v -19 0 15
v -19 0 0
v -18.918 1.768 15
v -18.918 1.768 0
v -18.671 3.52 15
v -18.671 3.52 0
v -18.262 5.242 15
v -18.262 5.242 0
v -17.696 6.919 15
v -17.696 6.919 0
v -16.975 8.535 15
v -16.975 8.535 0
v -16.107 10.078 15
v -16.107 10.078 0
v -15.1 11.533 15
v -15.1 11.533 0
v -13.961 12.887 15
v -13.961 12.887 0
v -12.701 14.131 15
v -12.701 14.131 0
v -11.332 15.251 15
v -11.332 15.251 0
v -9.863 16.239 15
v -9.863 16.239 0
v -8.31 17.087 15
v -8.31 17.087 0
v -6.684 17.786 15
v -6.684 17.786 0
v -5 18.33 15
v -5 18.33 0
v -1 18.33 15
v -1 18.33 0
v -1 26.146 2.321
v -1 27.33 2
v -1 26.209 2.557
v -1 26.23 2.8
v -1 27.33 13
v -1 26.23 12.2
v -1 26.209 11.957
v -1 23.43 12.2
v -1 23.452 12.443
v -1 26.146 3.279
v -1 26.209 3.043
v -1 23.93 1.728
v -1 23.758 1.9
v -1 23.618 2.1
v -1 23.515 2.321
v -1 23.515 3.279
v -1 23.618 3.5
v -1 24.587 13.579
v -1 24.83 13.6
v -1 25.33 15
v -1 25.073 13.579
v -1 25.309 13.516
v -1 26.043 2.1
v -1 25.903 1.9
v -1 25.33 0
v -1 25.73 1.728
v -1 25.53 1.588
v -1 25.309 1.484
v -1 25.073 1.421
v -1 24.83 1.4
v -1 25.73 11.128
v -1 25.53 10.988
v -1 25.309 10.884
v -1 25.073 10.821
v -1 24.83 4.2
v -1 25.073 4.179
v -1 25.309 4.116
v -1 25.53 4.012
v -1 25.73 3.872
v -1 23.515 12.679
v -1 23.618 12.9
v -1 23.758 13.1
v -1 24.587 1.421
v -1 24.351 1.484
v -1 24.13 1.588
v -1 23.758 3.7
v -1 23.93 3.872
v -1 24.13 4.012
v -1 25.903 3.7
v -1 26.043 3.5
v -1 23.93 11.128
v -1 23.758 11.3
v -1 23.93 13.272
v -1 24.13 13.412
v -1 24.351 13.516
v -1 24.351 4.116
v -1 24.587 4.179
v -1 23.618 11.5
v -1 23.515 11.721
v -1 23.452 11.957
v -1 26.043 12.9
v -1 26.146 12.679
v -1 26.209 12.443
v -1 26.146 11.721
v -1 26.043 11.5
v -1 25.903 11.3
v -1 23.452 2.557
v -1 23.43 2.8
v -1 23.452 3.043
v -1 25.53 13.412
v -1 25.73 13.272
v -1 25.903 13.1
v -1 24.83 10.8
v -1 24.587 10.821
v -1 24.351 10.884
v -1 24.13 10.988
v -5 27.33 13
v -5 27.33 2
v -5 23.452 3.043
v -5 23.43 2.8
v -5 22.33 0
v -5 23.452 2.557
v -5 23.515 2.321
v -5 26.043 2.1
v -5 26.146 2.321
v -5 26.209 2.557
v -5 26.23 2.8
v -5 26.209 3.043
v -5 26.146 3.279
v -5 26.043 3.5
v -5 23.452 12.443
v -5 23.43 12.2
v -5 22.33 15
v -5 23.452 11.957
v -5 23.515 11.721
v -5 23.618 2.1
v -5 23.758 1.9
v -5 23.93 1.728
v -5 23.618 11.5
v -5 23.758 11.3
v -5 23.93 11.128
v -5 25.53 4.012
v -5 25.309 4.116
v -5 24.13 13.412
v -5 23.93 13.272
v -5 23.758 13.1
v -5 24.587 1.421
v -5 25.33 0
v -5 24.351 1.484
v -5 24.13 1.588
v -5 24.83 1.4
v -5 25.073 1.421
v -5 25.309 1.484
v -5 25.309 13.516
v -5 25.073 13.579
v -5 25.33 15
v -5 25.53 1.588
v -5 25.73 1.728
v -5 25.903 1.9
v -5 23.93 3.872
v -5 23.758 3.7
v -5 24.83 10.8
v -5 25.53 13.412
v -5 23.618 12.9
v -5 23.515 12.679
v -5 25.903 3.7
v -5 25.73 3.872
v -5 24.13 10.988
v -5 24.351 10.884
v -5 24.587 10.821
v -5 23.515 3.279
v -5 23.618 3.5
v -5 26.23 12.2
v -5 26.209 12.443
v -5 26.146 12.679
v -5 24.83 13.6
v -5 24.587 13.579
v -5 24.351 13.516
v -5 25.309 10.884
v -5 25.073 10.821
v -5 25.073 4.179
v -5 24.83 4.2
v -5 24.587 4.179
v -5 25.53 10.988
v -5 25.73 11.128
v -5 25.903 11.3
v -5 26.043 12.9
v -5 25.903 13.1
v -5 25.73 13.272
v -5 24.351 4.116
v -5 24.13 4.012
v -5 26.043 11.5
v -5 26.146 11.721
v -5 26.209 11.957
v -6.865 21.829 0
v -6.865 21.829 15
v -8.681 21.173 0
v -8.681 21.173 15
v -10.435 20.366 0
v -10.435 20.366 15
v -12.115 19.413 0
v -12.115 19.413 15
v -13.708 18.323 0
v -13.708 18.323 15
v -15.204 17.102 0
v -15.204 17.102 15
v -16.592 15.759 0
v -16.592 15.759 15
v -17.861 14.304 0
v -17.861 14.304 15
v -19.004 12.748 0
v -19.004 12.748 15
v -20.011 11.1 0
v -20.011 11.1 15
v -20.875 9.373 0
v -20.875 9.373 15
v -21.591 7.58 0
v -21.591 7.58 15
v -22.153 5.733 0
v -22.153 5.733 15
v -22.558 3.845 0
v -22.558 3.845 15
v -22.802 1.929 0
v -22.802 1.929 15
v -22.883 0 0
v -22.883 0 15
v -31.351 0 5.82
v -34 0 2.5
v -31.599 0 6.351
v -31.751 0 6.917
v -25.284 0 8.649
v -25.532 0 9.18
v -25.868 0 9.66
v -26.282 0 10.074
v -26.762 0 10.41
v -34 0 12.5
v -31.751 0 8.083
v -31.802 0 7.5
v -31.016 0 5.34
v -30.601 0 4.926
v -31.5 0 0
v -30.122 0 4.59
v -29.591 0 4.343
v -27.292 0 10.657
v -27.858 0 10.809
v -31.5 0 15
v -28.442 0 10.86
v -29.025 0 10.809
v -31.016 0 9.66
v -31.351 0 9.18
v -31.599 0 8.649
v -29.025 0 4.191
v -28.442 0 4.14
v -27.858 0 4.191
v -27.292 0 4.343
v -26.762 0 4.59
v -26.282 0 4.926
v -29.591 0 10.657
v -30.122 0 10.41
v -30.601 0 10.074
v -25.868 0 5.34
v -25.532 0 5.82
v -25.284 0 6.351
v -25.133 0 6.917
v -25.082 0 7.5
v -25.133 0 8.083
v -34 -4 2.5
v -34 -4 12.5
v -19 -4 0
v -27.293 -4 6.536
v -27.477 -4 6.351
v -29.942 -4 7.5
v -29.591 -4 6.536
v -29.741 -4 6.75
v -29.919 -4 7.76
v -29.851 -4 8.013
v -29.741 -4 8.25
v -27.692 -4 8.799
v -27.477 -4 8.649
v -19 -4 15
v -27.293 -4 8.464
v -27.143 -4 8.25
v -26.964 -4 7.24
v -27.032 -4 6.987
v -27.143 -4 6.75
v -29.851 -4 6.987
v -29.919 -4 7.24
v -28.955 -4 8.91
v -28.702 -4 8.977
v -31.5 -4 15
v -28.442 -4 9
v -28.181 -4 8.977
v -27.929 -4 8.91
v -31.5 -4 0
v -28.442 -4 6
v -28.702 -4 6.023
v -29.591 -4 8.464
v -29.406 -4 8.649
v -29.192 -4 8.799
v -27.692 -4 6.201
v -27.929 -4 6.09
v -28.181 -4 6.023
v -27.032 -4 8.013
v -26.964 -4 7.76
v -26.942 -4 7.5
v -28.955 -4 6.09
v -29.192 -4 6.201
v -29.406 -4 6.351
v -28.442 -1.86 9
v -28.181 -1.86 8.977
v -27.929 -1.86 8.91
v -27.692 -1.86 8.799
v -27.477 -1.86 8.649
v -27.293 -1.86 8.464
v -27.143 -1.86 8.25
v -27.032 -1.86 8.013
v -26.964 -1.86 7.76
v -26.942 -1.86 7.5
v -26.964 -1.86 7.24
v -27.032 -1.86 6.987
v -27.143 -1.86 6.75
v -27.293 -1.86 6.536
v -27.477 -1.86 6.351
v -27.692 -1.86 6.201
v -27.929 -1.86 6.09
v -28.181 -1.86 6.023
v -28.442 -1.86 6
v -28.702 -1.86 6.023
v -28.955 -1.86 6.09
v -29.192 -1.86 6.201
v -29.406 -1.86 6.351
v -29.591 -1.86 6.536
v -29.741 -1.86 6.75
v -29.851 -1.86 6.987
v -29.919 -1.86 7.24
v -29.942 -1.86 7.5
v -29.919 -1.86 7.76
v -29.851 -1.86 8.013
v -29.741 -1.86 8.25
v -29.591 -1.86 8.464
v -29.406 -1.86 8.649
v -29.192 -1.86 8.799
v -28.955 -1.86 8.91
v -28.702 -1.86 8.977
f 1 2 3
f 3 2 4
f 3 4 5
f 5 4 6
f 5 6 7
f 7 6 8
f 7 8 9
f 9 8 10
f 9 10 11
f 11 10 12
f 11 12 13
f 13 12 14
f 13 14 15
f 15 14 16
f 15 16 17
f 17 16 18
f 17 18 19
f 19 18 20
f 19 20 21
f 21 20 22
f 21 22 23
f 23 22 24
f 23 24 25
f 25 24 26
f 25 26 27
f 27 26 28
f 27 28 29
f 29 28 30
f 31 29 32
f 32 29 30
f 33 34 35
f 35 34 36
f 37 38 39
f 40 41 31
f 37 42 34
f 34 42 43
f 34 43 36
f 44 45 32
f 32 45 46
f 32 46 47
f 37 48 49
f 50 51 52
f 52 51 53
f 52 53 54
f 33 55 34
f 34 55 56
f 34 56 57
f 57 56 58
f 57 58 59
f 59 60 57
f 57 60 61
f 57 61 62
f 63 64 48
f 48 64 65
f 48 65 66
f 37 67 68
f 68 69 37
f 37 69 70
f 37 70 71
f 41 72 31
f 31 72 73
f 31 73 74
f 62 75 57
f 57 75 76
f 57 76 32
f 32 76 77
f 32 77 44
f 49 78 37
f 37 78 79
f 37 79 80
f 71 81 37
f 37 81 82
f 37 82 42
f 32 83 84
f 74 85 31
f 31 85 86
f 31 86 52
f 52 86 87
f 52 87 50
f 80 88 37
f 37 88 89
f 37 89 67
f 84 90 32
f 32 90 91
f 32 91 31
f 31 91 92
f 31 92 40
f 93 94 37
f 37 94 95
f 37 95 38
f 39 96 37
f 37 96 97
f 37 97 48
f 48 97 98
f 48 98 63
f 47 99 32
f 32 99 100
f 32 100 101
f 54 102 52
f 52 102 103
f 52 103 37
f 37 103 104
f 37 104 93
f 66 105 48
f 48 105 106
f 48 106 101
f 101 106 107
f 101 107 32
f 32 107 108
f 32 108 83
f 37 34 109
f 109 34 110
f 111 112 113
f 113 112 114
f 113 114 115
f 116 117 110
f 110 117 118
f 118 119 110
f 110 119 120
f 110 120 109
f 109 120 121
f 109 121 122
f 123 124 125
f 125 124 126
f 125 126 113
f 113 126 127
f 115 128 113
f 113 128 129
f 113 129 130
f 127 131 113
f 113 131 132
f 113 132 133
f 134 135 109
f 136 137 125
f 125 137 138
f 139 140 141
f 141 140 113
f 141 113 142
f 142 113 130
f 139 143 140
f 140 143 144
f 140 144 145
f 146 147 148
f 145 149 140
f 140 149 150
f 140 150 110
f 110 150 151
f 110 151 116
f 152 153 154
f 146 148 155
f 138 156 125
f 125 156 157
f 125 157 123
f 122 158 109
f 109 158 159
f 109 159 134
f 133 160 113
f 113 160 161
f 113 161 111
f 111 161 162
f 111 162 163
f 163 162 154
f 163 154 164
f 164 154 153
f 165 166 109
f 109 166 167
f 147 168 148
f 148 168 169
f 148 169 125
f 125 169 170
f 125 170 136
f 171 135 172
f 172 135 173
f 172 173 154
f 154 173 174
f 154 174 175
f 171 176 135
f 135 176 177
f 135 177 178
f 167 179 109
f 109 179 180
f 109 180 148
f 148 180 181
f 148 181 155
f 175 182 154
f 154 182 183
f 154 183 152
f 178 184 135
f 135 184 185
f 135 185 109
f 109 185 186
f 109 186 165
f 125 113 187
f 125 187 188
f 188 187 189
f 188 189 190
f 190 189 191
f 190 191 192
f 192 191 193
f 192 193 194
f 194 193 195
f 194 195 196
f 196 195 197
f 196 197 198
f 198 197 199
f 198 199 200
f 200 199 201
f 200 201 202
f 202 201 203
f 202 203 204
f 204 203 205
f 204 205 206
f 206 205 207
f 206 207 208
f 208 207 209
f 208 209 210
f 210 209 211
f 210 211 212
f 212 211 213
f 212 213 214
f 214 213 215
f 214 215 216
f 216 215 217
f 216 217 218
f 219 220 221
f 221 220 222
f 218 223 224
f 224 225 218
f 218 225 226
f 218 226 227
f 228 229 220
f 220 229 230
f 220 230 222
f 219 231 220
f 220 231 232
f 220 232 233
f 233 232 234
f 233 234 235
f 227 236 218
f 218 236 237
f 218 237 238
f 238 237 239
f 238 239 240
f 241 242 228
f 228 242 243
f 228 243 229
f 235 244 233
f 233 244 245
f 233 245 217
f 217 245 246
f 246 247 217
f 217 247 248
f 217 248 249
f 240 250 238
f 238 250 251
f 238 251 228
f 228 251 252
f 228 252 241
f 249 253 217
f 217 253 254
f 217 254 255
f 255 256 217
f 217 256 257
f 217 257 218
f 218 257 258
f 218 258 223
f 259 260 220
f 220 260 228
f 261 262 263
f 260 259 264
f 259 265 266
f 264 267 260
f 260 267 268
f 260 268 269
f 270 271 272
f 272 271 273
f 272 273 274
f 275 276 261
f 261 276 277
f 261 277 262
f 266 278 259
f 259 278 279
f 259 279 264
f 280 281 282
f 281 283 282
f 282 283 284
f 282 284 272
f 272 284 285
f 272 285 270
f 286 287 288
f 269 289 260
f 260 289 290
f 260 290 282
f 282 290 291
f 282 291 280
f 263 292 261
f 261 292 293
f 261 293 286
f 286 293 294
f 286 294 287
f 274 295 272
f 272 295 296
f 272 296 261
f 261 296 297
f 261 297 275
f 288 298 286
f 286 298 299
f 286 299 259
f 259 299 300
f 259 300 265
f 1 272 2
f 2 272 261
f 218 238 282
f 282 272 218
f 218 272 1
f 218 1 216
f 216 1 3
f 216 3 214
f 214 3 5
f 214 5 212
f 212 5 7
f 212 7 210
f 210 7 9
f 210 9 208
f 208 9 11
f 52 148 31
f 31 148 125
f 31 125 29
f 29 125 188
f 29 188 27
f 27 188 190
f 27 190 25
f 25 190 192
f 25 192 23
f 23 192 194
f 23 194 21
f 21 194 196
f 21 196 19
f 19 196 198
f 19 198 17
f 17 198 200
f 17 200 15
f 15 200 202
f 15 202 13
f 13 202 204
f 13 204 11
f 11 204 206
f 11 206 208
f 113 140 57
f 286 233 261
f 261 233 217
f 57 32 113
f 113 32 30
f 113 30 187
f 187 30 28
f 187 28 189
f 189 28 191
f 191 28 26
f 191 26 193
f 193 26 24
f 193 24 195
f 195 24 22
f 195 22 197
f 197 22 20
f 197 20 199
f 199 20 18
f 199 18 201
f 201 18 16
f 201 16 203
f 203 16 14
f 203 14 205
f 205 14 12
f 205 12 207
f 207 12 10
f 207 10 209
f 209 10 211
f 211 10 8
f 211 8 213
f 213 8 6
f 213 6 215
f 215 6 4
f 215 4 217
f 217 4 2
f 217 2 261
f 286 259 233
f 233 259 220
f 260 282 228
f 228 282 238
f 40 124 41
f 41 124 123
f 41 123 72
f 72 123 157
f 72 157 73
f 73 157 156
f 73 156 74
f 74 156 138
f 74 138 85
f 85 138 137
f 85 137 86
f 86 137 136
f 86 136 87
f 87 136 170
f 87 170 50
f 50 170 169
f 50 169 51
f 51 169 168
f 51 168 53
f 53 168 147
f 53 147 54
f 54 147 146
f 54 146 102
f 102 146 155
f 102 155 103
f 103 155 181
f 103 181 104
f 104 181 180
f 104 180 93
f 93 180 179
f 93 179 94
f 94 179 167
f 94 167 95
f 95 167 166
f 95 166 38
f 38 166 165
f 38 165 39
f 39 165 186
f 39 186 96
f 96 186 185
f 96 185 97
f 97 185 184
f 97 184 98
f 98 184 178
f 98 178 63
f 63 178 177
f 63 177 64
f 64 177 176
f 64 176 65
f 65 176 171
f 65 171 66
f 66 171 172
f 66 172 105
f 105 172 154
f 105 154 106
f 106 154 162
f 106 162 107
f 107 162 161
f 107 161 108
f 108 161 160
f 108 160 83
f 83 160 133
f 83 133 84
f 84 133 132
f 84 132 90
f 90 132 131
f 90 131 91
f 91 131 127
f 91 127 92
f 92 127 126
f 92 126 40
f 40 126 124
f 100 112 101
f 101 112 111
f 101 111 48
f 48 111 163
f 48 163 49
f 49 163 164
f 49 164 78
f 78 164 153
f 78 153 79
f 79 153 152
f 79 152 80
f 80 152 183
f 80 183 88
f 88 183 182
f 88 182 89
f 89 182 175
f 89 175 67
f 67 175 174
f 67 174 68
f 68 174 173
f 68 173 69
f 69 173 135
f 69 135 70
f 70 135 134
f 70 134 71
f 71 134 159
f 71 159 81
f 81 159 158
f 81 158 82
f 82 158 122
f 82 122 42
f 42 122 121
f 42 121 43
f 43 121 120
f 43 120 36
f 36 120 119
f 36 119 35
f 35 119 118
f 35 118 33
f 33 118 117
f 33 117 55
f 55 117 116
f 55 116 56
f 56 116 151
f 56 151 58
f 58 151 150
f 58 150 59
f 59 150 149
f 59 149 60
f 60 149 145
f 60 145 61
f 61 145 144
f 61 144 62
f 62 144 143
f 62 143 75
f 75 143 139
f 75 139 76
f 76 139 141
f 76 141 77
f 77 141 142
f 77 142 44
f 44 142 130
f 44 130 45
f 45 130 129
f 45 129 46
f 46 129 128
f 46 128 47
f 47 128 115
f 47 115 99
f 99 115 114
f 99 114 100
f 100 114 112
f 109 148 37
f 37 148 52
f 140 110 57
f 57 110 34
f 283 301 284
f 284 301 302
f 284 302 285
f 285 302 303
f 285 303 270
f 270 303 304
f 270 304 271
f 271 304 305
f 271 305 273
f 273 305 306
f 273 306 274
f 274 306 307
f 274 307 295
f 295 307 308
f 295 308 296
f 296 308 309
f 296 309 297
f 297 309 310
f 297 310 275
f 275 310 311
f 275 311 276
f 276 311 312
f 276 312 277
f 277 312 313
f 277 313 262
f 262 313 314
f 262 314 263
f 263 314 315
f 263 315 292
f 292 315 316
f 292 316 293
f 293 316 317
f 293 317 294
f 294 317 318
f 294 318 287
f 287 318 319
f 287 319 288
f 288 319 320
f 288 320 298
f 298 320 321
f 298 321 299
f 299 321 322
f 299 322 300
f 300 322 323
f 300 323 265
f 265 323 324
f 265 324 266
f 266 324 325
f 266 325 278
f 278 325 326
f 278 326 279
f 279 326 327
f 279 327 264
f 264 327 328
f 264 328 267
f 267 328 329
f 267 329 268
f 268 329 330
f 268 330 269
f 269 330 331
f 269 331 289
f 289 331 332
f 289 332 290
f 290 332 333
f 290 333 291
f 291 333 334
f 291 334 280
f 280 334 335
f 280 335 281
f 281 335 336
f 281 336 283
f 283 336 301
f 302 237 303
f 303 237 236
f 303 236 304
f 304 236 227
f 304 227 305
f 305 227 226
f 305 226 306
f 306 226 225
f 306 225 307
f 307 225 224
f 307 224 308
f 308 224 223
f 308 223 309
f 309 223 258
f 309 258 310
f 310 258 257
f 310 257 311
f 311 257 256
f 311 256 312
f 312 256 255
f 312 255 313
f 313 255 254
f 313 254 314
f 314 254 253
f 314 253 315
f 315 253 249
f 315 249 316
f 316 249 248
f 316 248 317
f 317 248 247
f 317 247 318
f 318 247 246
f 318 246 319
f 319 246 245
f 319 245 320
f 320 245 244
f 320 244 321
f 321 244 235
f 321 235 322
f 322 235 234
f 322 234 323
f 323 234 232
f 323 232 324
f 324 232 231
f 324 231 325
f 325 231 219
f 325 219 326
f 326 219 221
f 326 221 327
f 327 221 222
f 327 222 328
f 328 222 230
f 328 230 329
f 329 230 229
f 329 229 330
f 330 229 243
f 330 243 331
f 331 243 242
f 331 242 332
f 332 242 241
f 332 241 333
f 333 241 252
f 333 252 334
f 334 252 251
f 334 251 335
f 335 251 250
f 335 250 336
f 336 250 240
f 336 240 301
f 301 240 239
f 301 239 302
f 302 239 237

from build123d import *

# Parameters (mm, degrees)
BOSS_EXTRUDE1_DEPTH           = 15
CHAMFER1_SIZE                 = 2.5
SKETCH2_R                     = 1.4
CUT_EXTRUDE1_DEPTH            = 15
CHAMFER2_SIZE                 = 2
SKETCH3_R                     = 1.4
CUT_EXTRUDE2_DEPTH            = 47.129659115
CSK_FOR_M3_SFHCS1_D           = 3
CSK_FOR_M3_SFHCS1_DEPTH       = 31.098709071
CSK_FOR_M3_SFHCS1_CSINK_D     = 6.72
CSK_FOR_M3_SFHCS1_CSINK_ANGLE = 90
CSK_FOR_M3_SFHCS1_TIP         = 0.901290929


with BuildPart() as part:
    # Sketch1 → Boss-Extrude1 (new body)
    with BuildSketch(Plane.XY):
        with BuildLine():
            Line((-19, 0), (-19, -4))
            Line((-19, -4), (-34, -4))
            Line((-34, -4), (-34, 0))
            Line((-34, 0), (-22.883234523, 0))
            ThreePointArc((-22.883234523, 0), (-17.861391251, 14.304304416), (-5, 22.33030278))
            Line((-5, 22.33030278), (-5, 27.33030278))
            Line((-5, 27.33030278), (-1, 27.33030278))
            Line((-1, 27.33030278), (-1, 18.33030278))
            Line((-1, 18.33030278), (-5, 18.33030278))
            ThreePointArc((-5, 18.33030278), (-15.099668871, 11.532562595), (-19, 0))
        make_face()
    extrude(amount=BOSS_EXTRUDE1_DEPTH)

    # Chamfer1
    chamfer1_edges = [part.edges().sort_by_distance(p)[0] for p in [
        (-34, -2, 0),
        (-34, -2, 15),
    ]]
    chamfer(chamfer1_edges, length=CHAMFER1_SIZE)

    # Sketch2 → Cut-Extrude1 (cut)
    with BuildSketch(Plane.ZY.offset(5)):
        with Locations(Location((2.8, 24.83030278, 0), (0, 0, 270))):
            Circle(SKETCH2_R)
        with Locations(Location((12.2, 24.83030278, 0), (0, 0, 270))):
            Circle(SKETCH2_R)
    extrude(amount=-CUT_EXTRUDE1_DEPTH, mode=Mode.SUBTRACT)

    # Chamfer2
    chamfer2_edges = [part.edges().sort_by_distance(p)[0] for p in [
        (-3, 27.33030278, 0),
        (-3, 27.33030278, 15),
    ]]
    chamfer(chamfer2_edges, length=CHAMFER2_SIZE)

    # Sketch3 → Cut-Extrude2 (cut, through all)
    with BuildSketch(Plane(origin=(0, 0, 0), x_dir=(1, 0, 0), z_dir=(0, 1, 0))):
        with Locations(Location((-28.441617262, -7.5, 0), (0, 0, 270))):
            Circle(SKETCH3_R)
    extrude(amount=-CUT_EXTRUDE2_DEPTH, mode=Mode.SUBTRACT)

    # CSK for M3 SFHCS1
    with Locations(Plane(origin=(-28.441617262, 0, 7.5), x_dir=(0, 0, 1), z_dir=(0, 1, 0))):
        with Locations((0, 0)):
            CounterSinkHole(CSK_FOR_M3_SFHCS1_D / 2, CSK_FOR_M3_SFHCS1_CSINK_D / 2, depth=CSK_FOR_M3_SFHCS1_DEPTH, counter_sink_angle=CSK_FOR_M3_SFHCS1_CSINK_ANGLE)
            with Locations((0, 0, -(CSK_FOR_M3_SFHCS1_DEPTH + CSK_FOR_M3_SFHCS1_TIP / 2))):  # 118° drill point
                Cone(0, CSK_FOR_M3_SFHCS1_D / 2, CSK_FOR_M3_SFHCS1_TIP, mode=Mode.SUBTRACT)


solid = part.part
